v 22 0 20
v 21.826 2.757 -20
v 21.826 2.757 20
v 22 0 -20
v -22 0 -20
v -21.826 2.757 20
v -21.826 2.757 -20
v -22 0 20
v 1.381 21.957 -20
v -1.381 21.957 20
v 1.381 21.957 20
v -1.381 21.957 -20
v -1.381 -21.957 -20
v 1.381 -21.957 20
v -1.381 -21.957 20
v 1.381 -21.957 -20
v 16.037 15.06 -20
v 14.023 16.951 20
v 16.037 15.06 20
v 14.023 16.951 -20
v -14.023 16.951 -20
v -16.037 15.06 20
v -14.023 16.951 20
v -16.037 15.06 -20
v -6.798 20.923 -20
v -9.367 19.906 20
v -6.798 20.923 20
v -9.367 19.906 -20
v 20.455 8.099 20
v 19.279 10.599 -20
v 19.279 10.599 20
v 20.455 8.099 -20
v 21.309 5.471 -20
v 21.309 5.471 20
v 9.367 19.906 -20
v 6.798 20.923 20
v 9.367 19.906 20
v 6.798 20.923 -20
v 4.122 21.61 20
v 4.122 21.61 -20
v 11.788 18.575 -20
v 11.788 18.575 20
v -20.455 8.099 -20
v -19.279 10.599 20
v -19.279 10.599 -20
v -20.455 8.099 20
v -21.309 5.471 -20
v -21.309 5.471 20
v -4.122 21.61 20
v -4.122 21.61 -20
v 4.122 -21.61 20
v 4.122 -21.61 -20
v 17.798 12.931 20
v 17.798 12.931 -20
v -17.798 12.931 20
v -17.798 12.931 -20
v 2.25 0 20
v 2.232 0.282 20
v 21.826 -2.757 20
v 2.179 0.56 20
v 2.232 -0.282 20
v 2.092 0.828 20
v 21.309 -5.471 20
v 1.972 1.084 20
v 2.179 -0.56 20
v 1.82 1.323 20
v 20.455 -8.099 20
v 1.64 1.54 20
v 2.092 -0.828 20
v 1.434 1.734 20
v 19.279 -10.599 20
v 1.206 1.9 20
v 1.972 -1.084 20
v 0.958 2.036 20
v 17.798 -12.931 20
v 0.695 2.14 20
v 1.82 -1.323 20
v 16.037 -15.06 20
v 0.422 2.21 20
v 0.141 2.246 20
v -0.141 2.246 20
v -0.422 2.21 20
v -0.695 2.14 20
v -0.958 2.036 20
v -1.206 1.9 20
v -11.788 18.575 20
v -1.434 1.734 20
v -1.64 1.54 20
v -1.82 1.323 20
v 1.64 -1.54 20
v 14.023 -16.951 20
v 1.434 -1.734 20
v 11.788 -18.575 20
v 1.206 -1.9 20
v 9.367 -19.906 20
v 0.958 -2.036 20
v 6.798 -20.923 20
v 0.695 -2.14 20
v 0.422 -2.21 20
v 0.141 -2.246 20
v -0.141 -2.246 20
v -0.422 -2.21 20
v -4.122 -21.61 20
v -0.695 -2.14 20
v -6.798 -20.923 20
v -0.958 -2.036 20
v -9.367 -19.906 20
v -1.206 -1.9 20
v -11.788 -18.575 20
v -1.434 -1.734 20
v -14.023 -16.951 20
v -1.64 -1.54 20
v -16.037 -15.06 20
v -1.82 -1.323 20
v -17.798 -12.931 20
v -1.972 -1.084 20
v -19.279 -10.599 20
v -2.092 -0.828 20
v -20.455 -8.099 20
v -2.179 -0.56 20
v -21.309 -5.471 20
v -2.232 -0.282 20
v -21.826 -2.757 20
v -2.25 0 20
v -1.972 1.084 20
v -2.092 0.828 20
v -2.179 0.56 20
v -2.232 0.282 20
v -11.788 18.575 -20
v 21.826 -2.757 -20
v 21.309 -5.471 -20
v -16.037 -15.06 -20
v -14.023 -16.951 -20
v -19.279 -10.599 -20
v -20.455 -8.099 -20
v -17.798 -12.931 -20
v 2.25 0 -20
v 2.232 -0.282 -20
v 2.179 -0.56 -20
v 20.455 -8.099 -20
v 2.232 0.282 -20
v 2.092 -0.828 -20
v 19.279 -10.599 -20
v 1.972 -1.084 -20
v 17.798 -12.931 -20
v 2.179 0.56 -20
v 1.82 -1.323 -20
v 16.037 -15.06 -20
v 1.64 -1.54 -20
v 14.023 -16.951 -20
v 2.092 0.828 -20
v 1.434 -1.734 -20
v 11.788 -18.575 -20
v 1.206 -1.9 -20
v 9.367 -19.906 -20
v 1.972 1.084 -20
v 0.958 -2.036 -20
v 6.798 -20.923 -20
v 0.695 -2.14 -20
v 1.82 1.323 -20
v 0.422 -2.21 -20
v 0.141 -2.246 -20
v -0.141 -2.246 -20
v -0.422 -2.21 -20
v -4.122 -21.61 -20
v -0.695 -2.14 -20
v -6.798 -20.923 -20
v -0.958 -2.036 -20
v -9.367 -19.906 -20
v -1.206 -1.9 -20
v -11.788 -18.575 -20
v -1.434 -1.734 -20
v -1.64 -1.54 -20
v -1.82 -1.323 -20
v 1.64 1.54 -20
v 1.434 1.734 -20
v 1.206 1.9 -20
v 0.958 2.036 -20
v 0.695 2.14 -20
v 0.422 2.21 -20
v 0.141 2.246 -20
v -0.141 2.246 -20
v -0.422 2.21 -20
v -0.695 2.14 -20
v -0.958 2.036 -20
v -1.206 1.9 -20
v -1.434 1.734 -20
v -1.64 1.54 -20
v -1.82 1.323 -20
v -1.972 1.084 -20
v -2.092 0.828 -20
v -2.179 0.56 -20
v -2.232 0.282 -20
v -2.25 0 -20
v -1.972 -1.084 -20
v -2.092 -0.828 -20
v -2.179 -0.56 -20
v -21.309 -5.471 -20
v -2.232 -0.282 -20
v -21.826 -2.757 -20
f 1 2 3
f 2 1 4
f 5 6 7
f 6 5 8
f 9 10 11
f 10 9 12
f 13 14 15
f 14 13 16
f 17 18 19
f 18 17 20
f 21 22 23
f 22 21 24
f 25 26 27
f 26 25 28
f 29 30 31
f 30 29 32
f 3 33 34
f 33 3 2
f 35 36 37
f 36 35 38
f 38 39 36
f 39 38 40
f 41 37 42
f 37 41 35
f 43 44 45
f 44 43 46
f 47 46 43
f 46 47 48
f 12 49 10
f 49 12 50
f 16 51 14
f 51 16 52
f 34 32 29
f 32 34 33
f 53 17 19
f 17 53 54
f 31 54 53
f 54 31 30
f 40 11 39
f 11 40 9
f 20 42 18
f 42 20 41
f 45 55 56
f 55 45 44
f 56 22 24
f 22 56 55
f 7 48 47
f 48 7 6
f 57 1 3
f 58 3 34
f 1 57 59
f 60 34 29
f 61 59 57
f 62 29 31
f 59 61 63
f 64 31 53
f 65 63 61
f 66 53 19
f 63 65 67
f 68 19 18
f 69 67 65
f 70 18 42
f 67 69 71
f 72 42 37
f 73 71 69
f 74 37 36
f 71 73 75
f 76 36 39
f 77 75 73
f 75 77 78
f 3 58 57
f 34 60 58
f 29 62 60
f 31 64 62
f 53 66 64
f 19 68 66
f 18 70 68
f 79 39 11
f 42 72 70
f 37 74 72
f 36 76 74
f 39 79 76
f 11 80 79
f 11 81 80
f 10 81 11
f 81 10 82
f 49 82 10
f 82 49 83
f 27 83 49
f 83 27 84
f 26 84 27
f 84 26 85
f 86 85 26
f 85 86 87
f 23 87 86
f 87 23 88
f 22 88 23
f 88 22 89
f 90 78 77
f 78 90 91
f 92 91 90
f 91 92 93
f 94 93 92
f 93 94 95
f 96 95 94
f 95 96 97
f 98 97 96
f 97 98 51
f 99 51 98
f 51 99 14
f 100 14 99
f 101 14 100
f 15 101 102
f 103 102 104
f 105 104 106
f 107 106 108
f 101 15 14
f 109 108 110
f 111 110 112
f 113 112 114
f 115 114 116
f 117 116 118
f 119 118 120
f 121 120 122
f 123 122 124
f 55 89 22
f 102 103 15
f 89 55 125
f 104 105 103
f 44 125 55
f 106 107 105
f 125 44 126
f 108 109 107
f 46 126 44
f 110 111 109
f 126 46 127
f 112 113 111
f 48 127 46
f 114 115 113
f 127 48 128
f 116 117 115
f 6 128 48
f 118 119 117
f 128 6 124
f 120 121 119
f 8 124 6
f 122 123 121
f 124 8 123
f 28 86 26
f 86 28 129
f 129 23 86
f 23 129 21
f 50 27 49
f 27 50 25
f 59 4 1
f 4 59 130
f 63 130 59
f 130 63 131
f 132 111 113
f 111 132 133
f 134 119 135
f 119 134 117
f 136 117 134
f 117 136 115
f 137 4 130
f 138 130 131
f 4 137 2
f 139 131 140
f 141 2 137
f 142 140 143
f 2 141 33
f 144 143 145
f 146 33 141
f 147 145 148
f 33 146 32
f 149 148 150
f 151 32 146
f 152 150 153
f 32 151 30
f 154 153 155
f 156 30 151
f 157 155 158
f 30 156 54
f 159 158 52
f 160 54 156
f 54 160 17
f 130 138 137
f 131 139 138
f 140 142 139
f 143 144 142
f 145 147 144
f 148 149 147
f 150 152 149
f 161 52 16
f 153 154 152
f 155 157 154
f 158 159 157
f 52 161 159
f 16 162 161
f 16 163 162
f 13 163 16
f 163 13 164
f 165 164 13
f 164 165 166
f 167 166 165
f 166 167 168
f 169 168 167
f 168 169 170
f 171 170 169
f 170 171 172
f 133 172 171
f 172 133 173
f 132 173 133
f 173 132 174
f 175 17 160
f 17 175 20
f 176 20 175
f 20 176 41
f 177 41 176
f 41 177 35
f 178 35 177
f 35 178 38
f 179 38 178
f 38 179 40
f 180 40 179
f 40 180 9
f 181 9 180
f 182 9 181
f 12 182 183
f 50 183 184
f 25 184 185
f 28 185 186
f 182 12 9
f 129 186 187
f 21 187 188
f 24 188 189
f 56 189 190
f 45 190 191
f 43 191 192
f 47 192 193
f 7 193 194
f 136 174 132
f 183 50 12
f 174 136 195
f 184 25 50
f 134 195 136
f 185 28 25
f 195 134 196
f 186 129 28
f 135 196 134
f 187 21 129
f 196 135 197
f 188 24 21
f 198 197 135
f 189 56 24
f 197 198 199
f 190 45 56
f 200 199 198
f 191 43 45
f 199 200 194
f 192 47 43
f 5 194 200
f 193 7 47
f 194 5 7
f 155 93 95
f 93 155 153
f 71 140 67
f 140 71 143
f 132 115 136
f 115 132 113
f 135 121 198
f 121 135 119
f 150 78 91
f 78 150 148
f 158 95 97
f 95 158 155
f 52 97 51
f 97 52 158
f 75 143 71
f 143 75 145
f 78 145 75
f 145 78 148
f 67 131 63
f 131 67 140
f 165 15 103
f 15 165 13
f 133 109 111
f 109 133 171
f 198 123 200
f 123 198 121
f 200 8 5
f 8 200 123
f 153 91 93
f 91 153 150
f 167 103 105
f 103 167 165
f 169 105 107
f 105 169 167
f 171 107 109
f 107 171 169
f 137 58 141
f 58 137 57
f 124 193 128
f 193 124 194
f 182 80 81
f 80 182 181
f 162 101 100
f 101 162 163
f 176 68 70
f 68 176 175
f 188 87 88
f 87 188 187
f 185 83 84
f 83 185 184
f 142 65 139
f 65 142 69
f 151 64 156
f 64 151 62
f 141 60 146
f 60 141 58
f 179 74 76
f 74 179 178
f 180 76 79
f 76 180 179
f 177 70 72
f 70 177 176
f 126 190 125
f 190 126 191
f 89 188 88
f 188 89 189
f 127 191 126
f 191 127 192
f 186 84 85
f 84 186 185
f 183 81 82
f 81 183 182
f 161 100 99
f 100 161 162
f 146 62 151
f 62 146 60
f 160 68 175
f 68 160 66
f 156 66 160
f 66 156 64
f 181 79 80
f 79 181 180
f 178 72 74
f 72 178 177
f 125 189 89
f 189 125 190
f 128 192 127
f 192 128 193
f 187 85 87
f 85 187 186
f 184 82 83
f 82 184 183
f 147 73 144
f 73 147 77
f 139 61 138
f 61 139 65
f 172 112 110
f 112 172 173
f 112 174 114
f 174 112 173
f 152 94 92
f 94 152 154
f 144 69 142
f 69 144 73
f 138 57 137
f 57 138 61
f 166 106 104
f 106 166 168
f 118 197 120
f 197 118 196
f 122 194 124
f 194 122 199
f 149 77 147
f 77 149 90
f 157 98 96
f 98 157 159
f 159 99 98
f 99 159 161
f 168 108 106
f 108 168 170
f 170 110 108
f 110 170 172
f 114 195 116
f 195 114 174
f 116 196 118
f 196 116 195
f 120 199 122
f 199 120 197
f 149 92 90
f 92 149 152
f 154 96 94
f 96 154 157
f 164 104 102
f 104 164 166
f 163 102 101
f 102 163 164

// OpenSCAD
$fn = 50;


difference() {
	union() {
		translate(v = [0, 0, -20.0000000000]) {
			cylinder(h = 40, r = 22.0000000000);
		}
	}
	union() {
		translate(v = [0, 0, -100.0000000000]) {
			cylinder(h = 200, r = 2.2500000000);
		}
	}
}
